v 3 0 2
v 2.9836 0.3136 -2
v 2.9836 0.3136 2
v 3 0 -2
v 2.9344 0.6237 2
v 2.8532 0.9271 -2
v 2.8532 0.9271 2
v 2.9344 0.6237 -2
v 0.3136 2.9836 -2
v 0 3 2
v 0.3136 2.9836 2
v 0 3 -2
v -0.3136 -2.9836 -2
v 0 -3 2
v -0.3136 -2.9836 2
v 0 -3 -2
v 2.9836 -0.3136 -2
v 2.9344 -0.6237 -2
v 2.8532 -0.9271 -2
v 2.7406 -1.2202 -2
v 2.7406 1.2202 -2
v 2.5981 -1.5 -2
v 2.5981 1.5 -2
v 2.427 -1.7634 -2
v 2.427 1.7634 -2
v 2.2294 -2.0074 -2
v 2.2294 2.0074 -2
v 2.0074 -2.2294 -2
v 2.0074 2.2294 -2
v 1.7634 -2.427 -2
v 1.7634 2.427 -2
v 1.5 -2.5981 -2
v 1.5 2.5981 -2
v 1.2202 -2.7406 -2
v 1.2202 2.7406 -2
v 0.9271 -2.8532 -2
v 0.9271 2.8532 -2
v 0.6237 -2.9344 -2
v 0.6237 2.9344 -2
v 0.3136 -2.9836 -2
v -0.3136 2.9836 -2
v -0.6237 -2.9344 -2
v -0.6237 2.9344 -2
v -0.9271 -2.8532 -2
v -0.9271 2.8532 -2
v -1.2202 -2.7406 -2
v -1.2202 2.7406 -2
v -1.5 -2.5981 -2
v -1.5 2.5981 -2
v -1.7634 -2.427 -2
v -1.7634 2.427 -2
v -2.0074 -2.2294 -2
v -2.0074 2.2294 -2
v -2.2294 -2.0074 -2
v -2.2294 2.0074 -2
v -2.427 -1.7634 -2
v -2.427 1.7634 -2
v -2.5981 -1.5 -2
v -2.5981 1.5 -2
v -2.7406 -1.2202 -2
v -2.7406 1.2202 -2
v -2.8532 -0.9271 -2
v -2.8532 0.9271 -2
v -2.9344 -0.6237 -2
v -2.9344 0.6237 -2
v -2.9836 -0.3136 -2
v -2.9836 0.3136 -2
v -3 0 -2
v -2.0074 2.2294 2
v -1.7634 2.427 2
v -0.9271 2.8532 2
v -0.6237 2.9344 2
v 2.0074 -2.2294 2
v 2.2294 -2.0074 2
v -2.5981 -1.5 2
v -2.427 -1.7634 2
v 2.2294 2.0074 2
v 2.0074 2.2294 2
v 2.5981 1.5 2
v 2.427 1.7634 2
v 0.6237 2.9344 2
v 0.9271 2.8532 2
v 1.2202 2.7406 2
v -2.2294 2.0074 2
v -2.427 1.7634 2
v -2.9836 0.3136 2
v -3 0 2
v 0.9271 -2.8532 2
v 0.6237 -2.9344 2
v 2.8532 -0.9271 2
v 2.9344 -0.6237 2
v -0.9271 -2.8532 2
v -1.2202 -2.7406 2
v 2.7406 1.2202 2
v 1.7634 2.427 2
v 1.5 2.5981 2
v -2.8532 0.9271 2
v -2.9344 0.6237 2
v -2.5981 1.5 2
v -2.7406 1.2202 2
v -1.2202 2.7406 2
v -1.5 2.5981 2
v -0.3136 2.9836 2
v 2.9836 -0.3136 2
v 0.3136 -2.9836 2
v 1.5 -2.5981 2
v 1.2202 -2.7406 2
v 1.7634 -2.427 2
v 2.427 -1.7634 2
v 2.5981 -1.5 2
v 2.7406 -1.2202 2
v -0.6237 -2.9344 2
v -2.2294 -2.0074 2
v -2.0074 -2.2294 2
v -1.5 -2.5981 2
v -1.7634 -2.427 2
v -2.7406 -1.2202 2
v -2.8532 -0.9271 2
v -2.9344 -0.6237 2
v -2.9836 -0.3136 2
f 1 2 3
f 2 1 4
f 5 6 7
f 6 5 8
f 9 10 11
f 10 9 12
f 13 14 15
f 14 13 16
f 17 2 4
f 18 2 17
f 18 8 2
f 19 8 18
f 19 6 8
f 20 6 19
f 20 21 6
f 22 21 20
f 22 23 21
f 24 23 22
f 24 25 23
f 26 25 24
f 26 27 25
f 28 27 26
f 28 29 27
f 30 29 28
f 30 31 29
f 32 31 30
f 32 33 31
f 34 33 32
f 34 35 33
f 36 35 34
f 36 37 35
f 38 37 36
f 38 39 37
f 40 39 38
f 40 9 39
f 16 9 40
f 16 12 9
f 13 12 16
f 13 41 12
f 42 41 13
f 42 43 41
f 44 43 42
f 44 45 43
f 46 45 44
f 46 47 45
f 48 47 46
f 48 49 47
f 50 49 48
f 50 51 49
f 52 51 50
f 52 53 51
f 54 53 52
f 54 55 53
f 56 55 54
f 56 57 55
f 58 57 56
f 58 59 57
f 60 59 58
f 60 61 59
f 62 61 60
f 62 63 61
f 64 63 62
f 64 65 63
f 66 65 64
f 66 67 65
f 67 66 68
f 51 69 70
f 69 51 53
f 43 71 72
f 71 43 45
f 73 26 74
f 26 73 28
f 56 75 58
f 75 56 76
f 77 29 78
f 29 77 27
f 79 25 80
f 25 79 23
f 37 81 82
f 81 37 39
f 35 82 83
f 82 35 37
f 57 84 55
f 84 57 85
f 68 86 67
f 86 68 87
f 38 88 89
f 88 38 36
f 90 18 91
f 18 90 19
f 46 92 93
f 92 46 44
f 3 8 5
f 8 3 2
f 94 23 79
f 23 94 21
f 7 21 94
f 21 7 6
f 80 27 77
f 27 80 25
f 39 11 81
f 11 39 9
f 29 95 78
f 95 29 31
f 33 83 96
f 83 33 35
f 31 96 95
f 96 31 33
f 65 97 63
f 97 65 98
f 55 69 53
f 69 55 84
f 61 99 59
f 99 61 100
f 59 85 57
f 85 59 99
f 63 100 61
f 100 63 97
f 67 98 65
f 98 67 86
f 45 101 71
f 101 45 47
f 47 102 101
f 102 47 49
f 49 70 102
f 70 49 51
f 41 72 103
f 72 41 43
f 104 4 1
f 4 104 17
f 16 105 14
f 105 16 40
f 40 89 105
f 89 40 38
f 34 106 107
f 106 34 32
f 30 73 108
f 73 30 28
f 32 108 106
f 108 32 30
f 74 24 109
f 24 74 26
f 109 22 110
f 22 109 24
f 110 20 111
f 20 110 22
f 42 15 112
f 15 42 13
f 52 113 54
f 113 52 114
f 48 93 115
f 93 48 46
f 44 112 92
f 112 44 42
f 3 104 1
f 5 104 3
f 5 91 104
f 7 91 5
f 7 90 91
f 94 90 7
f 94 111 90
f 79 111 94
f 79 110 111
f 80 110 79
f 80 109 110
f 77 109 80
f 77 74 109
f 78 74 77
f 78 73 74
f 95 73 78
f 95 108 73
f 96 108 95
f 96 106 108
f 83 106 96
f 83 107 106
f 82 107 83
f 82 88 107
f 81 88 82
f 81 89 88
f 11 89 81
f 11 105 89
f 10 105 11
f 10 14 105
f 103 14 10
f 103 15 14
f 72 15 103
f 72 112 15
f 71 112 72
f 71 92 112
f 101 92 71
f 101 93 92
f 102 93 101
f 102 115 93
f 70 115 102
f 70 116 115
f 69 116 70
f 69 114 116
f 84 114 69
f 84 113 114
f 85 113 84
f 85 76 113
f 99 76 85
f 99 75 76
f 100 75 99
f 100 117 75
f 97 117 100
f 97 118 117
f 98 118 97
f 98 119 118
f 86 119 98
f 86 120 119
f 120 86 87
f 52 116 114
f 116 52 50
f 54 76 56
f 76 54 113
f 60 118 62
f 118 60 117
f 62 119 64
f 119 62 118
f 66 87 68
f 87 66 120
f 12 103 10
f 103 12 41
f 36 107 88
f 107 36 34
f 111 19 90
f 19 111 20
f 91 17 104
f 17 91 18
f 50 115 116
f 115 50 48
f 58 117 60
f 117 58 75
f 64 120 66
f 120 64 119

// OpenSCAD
//Platinen Pin ESP32 UNO Wetterstation
//4x

$fn=60;
Rgr = 3; //Radius PIN 
R1kl = 0; //Radius 1 Stift
R2kl = 0; //Radius 2 Stift
Sh = 4;       //Sockelhöhe


cylinder(h = Sh, r1=Rgr , r2=Rgr , center = true);
translate(v = [0, 0, Sh/2])
cylinder(h = 3, r1 = R1kl, r2 = R2kl, center = true);
